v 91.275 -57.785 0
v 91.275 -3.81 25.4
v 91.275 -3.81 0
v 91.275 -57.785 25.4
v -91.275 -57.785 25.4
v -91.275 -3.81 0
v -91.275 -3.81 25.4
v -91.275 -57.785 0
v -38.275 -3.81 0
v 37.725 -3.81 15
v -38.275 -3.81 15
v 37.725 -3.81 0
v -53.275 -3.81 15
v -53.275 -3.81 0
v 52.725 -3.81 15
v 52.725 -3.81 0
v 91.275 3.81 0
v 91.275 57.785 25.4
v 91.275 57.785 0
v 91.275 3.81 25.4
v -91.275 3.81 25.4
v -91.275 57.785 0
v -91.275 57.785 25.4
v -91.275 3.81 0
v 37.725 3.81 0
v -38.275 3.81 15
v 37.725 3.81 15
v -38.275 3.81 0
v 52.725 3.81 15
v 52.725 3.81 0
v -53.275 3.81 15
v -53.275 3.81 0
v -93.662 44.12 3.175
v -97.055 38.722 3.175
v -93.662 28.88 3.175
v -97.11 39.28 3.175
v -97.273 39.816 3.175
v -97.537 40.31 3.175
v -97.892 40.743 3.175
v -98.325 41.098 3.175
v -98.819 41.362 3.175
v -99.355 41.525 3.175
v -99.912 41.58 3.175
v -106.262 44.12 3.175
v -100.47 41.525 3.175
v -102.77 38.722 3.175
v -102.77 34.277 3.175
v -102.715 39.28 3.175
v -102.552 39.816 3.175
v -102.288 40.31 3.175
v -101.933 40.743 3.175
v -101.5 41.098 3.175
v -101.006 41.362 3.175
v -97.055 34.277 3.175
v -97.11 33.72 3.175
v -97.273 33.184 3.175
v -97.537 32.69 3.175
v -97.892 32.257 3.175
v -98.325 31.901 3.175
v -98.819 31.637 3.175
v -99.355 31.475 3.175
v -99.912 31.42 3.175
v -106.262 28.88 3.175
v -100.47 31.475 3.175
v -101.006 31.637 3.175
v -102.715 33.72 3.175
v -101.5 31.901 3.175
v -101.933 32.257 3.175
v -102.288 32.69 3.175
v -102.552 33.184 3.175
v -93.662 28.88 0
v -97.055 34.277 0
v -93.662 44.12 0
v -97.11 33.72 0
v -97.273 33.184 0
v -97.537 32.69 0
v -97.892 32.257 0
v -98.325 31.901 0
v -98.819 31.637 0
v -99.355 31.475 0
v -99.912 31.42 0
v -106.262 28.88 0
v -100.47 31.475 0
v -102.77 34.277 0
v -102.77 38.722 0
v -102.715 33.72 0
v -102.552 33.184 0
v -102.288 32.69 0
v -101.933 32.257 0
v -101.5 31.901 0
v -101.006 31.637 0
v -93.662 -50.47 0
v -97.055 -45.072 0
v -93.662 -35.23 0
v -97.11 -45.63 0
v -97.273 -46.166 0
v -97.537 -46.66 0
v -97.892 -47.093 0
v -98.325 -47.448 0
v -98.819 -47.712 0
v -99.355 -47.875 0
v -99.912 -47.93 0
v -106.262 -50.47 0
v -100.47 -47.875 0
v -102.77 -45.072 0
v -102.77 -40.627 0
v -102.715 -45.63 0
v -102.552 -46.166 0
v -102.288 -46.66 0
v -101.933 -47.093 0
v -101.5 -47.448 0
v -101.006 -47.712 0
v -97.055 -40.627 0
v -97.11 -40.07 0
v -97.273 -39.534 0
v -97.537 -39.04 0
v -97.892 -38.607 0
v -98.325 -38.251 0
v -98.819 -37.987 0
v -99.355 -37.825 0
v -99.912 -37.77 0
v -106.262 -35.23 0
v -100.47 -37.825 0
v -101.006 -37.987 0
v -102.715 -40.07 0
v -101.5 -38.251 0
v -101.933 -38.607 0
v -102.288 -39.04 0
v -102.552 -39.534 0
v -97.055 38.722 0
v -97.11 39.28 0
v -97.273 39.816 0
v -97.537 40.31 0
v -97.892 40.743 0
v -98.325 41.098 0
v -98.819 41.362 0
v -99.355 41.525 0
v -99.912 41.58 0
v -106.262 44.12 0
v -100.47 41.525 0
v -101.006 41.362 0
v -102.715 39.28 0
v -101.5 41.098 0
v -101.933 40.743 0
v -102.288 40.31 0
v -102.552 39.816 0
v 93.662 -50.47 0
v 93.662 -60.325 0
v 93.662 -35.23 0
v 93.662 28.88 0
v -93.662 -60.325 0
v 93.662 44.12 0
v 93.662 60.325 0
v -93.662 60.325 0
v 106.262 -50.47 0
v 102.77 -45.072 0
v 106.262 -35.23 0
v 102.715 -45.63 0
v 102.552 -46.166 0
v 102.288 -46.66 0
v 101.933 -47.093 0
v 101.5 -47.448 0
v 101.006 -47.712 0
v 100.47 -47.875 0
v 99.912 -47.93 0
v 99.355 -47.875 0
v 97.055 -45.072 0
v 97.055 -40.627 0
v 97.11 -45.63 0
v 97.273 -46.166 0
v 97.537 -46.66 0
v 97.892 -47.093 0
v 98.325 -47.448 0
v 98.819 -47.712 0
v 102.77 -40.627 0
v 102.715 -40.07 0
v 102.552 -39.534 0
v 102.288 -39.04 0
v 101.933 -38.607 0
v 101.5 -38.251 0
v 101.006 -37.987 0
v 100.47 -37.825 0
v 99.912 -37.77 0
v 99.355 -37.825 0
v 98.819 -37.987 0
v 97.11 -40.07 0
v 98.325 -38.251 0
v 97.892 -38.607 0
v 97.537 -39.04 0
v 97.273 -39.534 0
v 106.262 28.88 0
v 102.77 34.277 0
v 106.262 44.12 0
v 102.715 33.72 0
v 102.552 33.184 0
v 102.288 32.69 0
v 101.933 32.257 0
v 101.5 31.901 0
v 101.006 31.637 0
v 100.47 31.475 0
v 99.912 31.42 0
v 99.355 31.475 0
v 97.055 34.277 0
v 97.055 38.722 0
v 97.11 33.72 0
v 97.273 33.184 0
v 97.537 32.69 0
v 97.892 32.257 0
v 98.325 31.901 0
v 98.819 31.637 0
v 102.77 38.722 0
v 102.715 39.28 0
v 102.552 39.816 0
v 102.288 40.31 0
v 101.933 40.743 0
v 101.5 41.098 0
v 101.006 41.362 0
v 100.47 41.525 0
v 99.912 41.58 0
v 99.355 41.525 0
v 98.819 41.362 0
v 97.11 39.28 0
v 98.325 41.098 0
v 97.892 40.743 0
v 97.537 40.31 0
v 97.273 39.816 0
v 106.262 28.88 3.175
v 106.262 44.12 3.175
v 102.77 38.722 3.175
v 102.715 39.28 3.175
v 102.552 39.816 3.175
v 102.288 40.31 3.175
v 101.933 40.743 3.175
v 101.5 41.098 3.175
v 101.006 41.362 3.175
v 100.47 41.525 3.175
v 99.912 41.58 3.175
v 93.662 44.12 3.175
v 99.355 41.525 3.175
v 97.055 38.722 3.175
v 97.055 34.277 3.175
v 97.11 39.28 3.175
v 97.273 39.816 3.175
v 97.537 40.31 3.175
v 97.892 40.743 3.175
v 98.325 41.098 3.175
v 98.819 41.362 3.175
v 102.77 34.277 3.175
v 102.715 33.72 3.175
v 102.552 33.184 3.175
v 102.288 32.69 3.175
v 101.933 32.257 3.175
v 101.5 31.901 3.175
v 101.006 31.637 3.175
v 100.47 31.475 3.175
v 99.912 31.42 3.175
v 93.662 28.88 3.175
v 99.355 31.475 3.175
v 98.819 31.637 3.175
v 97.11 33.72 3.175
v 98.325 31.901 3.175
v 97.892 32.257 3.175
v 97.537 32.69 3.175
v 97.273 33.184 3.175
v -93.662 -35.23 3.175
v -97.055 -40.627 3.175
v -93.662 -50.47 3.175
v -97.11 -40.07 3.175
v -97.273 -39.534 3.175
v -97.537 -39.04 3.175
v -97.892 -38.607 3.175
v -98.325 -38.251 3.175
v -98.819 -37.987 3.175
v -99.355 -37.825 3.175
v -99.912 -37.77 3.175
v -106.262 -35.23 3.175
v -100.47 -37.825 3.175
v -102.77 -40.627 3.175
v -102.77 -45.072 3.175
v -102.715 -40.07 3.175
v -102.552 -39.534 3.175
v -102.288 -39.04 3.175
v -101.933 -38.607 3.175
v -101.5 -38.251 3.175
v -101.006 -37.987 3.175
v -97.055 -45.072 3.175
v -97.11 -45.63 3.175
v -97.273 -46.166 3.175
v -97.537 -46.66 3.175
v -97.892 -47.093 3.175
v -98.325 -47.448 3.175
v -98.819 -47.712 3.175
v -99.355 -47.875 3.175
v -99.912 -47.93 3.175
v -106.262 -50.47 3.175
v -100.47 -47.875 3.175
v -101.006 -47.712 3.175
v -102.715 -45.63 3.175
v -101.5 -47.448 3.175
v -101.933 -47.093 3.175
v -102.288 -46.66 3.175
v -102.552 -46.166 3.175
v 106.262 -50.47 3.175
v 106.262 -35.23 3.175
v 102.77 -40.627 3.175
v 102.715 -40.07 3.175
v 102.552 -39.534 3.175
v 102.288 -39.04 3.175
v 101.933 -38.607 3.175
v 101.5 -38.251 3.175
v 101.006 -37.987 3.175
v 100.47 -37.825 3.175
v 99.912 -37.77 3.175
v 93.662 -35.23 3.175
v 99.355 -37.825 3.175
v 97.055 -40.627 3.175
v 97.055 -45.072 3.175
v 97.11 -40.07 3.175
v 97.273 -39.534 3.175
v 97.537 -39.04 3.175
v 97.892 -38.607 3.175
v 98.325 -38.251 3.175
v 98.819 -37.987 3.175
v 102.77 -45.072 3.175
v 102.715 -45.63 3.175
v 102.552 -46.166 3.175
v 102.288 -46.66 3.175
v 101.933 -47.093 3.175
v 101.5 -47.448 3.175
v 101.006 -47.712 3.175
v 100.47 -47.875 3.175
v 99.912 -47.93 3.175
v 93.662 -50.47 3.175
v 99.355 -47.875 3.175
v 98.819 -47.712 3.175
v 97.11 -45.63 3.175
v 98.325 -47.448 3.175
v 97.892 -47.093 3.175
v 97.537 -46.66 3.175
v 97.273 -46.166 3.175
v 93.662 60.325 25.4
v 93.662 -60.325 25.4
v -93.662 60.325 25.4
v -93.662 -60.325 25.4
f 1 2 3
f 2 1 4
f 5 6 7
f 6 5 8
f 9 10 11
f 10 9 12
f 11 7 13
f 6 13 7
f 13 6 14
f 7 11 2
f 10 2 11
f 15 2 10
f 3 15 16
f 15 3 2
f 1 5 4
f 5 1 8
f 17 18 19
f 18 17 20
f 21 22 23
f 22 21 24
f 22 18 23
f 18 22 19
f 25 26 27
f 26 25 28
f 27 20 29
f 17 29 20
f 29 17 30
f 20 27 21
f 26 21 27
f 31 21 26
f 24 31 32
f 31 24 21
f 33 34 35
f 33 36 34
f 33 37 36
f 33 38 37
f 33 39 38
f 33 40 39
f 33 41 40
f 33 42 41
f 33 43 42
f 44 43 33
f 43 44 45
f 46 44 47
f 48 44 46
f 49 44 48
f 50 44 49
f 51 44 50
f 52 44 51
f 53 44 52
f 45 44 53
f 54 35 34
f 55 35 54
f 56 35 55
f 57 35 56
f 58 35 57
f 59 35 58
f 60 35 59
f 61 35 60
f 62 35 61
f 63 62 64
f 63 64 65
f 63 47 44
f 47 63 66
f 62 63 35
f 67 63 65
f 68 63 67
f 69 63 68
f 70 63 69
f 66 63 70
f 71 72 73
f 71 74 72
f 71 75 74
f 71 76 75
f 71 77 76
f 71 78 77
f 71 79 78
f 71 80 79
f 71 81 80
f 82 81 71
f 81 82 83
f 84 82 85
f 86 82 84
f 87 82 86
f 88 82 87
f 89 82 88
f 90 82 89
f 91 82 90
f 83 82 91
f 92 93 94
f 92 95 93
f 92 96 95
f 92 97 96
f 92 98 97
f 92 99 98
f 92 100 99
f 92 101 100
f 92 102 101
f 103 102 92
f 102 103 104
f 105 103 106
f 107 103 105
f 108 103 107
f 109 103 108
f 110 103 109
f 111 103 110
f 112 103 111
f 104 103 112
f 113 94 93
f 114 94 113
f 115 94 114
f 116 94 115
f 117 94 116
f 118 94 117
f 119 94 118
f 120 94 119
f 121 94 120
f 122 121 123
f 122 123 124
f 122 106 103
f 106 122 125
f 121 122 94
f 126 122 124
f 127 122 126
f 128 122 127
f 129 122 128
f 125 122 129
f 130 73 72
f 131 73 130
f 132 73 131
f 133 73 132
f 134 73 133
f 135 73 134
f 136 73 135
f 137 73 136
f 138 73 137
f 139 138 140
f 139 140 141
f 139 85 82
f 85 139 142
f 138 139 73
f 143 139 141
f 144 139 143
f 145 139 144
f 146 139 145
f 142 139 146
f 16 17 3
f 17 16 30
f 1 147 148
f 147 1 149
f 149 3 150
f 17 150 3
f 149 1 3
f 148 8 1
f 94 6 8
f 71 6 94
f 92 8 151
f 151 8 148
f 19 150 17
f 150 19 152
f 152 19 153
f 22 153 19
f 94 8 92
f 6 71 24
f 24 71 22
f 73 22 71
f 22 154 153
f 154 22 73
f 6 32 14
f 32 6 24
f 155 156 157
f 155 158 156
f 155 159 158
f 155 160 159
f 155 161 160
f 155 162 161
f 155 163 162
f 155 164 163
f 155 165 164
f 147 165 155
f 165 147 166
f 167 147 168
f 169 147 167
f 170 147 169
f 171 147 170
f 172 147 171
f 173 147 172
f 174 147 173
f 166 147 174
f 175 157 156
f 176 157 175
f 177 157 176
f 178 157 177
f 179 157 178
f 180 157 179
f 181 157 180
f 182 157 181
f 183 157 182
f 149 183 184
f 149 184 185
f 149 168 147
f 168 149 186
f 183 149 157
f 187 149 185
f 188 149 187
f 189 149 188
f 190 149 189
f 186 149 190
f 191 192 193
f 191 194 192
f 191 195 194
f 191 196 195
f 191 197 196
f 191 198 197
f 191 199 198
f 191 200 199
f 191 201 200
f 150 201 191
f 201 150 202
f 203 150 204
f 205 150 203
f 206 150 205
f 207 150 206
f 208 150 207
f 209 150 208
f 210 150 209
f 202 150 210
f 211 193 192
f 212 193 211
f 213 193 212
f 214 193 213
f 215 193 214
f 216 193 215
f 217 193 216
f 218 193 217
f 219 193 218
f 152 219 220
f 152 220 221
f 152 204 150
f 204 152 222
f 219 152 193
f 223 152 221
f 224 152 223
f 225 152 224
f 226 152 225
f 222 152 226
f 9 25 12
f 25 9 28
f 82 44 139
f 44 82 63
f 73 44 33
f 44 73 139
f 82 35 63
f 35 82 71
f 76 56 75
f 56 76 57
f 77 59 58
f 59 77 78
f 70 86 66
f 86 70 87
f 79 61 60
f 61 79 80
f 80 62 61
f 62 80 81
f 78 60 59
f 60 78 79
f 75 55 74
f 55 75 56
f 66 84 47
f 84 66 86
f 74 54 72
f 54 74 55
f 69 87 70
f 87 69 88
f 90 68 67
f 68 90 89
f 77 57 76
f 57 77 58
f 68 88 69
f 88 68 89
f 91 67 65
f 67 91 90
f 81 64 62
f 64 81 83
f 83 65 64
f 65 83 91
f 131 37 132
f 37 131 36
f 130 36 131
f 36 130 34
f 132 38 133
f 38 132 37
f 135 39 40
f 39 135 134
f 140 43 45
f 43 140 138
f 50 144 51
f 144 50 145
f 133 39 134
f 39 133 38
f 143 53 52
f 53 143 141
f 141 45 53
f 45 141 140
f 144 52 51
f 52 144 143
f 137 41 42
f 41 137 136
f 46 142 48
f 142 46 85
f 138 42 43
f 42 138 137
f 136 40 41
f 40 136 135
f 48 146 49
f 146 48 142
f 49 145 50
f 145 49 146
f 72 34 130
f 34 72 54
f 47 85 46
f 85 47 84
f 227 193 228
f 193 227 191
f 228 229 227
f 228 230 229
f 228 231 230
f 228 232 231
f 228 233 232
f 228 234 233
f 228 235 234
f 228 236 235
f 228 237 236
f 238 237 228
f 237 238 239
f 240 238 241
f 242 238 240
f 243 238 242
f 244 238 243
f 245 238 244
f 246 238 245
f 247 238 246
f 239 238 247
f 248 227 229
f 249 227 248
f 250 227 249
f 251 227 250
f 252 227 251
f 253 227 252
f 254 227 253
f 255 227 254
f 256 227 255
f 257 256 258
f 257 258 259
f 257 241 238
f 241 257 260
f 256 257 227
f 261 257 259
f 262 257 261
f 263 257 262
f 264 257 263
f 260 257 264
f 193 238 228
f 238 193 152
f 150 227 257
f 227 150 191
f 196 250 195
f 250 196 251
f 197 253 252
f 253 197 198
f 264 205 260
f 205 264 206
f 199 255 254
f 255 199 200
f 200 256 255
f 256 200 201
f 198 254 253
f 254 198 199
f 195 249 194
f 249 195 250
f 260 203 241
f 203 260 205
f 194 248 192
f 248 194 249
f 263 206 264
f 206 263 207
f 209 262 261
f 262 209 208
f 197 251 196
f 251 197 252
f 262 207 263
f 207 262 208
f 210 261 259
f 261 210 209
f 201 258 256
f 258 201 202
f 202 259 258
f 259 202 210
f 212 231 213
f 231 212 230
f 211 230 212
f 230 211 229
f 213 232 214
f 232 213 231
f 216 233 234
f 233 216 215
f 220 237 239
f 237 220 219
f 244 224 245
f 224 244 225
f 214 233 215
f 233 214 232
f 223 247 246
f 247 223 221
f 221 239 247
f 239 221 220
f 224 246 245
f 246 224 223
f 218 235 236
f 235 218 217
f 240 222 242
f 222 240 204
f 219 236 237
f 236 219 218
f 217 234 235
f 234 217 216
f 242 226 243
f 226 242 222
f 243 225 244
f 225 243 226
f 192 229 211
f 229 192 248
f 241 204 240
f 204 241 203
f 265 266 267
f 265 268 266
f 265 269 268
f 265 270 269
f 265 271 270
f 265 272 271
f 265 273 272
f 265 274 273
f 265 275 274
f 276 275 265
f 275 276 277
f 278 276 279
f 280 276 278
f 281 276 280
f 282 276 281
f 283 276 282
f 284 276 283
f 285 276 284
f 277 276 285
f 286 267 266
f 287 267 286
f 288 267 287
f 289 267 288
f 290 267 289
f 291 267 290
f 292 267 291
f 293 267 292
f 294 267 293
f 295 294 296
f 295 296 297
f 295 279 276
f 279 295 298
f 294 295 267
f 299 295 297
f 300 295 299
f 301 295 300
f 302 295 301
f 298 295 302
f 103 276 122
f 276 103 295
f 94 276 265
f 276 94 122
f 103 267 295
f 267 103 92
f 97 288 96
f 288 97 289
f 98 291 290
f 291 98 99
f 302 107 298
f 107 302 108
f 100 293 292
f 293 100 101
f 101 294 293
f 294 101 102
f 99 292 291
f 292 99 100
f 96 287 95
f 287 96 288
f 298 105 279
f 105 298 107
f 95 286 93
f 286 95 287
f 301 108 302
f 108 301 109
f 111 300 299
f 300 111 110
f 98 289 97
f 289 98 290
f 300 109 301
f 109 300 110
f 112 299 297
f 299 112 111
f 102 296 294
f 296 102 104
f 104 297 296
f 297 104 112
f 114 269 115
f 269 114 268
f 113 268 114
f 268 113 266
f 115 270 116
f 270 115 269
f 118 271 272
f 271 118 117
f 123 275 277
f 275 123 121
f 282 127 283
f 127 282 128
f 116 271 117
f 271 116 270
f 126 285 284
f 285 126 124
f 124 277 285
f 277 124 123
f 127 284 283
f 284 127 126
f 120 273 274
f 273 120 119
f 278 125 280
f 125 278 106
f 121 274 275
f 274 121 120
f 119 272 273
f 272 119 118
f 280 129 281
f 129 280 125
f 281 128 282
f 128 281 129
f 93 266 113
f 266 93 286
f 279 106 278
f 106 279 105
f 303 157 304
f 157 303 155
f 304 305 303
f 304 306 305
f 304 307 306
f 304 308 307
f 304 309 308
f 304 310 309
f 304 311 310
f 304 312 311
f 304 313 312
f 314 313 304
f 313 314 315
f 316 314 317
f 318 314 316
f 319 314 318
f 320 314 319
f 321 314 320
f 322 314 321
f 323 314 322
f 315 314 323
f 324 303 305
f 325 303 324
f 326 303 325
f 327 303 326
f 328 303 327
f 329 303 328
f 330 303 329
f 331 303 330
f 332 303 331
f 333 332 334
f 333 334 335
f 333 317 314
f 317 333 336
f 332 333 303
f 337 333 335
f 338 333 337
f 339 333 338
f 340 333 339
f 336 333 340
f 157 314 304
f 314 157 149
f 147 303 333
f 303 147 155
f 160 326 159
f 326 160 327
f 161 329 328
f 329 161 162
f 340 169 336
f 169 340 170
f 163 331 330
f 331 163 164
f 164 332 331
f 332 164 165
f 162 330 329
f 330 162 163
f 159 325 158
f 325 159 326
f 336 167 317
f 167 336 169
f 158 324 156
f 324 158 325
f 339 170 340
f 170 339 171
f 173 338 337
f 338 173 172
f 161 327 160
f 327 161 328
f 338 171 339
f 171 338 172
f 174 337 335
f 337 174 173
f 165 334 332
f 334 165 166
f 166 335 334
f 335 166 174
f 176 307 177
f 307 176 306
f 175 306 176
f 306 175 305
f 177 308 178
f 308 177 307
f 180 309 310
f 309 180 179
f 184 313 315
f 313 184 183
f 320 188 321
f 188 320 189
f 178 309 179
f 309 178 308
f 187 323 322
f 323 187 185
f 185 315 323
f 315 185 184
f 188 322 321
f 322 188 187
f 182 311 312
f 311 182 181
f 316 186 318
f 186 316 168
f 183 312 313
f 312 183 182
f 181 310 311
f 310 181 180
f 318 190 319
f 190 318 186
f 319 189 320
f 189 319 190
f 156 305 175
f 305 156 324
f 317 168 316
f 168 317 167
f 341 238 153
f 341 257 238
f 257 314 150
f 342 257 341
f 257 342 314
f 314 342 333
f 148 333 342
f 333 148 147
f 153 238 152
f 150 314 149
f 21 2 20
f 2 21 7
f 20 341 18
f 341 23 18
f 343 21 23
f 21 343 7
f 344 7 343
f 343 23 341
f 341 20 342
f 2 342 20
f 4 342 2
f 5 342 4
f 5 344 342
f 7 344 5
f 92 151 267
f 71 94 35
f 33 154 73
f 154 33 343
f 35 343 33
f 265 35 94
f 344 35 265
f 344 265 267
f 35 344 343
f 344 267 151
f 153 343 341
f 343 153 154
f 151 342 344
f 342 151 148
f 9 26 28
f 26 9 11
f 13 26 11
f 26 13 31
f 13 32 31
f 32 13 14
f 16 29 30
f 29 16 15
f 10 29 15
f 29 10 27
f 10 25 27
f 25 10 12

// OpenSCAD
//
// Miata NA dual-opening DIN mount
//

mm = 25.4;
e = 0.1;
$fn = 32;

fast = 1;

// DIN opening 
//din_w = 7.25*mm;		/* width */
din_w = 7.187*mm;		/* width */
din_h = 2.125*mm;		/* height */
din_d = 1*mm;		/* depth */
// din_d = 0.25*mm;		/* fast test depth */

din_thk = 0.1*mm;		/* DIN wall thickness */

overall_h = 4.75*mm;
overall_w = 7.375*mm;

frame_thk = 0.125*mm;

din_hgt = din_h + 2*din_thk;
din_wid = din_w + 2*din_thk;

din_c2c = overall_h-din_hgt;

// supports
supp_x = 1.625*mm;
supp_w = 0.5*mm;
supp_h = din_thk;
// supp_l = 1*mm;
supp_l = 0.35*mm;		/* fast test */

// bracket 
bkt_w = 0.5*mm;
bkt_h = 0.6*mm;
bkt_t = 0.125*mm;
bkt_hole = 0.225*mm;
bkt_slot = 0.4*mm-bkt_hole;

// top_bkt = 1.063*mm;
top_bkt = 0.938*mm;
bot_bkt = 0.688*mm;

// DIN opening only
module din_open() {
     translate( [din_thk-din_wid/2, din_thk-din_hgt/2, -e])
	  cube( [din_w, din_h, din_d+2*e]);
}

// Two openings centered
module din_open2() {
     translate( [0, -din_c2c/2, 0]) {
	  din_open();
	  translate( [0, din_c2c, 0]) din_open();
     }
}

// outer frame, solid, centered
module outer() {
     translate( [-overall_w/2, -overall_h/2, 0]) {
	  cube( [overall_w, overall_h, din_d]);
     }
}

// one support
module support() {
     cube( [supp_w, supp_h, supp_l]);
}

// left, right and bottom supports
module supports() {
     translate( [-overall_w/2+supp_x-supp_w/2, overall_h/2-supp_h, -supp_l+e])
	  support();
     translate( [overall_w/2-supp_x-supp_w/2, overall_h/2-supp_h, -supp_l+e])
	  support();
     translate( [-overall_w/2+din_thk, overall_h/2-top_bkt-bkt_h/2, -supp_l+e])
	  rotate([0,0,90]) support();
     translate( [overall_w/2-din_thk+supp_h, overall_h/2-top_bkt-bkt_h/2, -supp_l+e])
	  rotate([0,0,90]) support();
}

// one mounting bracket with oval hole
module bracket() {
     difference() {
	  translate( [-bkt_w/2, -bkt_h/2, 0]) cube( [bkt_w, bkt_h, bkt_t]);
	  translate( [0, -bkt_slot/2, -e]) cylinder( d=0.225*mm, h=bkt_t+2*e);
	  translate( [0, bkt_slot/2, -e]) cylinder( d=0.225*mm, h=bkt_t+2*e);
	  translate( [-bkt_hole/2, -bkt_slot/2, -e]) cube( [bkt_hole, bkt_slot, bkt_t+2*e]);
     }
}

// four mounting brackets
module brackets() {
     translate( [-overall_w/2-bkt_w/2+e, overall_h/2-top_bkt, 0]) bracket();
     translate( [overall_w/2+bkt_w/2-e, overall_h/2-top_bkt, 0]) bracket();

     translate( [-overall_w/2-bkt_w/2+e, -overall_h/2+bot_bkt, 0]) bracket();
     translate( [overall_w/2+bkt_w/2-e, -overall_h/2+bot_bkt, 0]) bracket();
}

cut1_x = 38;
cut1_dx = 15;

cut2_x = 129;
cut2_dx = 15;

din_cut = 15;


// frame with DIN openings
difference() {
     outer();
     din_open2();
     translate( [-din_w/2-cut1_x, -10, -din_cut])
	  cube( [cut1_dx, 20, 20]);
     translate( [-din_w/2+cut1_x, -10, -20+din_cut])
	 cube( [cut1_dx, 20, 20]);
     translate( [-din_w/2+cut2_x, -10, -20+din_cut])
	 cube( [cut2_dx, 20, 20]);
}


brackets();
// supports();
